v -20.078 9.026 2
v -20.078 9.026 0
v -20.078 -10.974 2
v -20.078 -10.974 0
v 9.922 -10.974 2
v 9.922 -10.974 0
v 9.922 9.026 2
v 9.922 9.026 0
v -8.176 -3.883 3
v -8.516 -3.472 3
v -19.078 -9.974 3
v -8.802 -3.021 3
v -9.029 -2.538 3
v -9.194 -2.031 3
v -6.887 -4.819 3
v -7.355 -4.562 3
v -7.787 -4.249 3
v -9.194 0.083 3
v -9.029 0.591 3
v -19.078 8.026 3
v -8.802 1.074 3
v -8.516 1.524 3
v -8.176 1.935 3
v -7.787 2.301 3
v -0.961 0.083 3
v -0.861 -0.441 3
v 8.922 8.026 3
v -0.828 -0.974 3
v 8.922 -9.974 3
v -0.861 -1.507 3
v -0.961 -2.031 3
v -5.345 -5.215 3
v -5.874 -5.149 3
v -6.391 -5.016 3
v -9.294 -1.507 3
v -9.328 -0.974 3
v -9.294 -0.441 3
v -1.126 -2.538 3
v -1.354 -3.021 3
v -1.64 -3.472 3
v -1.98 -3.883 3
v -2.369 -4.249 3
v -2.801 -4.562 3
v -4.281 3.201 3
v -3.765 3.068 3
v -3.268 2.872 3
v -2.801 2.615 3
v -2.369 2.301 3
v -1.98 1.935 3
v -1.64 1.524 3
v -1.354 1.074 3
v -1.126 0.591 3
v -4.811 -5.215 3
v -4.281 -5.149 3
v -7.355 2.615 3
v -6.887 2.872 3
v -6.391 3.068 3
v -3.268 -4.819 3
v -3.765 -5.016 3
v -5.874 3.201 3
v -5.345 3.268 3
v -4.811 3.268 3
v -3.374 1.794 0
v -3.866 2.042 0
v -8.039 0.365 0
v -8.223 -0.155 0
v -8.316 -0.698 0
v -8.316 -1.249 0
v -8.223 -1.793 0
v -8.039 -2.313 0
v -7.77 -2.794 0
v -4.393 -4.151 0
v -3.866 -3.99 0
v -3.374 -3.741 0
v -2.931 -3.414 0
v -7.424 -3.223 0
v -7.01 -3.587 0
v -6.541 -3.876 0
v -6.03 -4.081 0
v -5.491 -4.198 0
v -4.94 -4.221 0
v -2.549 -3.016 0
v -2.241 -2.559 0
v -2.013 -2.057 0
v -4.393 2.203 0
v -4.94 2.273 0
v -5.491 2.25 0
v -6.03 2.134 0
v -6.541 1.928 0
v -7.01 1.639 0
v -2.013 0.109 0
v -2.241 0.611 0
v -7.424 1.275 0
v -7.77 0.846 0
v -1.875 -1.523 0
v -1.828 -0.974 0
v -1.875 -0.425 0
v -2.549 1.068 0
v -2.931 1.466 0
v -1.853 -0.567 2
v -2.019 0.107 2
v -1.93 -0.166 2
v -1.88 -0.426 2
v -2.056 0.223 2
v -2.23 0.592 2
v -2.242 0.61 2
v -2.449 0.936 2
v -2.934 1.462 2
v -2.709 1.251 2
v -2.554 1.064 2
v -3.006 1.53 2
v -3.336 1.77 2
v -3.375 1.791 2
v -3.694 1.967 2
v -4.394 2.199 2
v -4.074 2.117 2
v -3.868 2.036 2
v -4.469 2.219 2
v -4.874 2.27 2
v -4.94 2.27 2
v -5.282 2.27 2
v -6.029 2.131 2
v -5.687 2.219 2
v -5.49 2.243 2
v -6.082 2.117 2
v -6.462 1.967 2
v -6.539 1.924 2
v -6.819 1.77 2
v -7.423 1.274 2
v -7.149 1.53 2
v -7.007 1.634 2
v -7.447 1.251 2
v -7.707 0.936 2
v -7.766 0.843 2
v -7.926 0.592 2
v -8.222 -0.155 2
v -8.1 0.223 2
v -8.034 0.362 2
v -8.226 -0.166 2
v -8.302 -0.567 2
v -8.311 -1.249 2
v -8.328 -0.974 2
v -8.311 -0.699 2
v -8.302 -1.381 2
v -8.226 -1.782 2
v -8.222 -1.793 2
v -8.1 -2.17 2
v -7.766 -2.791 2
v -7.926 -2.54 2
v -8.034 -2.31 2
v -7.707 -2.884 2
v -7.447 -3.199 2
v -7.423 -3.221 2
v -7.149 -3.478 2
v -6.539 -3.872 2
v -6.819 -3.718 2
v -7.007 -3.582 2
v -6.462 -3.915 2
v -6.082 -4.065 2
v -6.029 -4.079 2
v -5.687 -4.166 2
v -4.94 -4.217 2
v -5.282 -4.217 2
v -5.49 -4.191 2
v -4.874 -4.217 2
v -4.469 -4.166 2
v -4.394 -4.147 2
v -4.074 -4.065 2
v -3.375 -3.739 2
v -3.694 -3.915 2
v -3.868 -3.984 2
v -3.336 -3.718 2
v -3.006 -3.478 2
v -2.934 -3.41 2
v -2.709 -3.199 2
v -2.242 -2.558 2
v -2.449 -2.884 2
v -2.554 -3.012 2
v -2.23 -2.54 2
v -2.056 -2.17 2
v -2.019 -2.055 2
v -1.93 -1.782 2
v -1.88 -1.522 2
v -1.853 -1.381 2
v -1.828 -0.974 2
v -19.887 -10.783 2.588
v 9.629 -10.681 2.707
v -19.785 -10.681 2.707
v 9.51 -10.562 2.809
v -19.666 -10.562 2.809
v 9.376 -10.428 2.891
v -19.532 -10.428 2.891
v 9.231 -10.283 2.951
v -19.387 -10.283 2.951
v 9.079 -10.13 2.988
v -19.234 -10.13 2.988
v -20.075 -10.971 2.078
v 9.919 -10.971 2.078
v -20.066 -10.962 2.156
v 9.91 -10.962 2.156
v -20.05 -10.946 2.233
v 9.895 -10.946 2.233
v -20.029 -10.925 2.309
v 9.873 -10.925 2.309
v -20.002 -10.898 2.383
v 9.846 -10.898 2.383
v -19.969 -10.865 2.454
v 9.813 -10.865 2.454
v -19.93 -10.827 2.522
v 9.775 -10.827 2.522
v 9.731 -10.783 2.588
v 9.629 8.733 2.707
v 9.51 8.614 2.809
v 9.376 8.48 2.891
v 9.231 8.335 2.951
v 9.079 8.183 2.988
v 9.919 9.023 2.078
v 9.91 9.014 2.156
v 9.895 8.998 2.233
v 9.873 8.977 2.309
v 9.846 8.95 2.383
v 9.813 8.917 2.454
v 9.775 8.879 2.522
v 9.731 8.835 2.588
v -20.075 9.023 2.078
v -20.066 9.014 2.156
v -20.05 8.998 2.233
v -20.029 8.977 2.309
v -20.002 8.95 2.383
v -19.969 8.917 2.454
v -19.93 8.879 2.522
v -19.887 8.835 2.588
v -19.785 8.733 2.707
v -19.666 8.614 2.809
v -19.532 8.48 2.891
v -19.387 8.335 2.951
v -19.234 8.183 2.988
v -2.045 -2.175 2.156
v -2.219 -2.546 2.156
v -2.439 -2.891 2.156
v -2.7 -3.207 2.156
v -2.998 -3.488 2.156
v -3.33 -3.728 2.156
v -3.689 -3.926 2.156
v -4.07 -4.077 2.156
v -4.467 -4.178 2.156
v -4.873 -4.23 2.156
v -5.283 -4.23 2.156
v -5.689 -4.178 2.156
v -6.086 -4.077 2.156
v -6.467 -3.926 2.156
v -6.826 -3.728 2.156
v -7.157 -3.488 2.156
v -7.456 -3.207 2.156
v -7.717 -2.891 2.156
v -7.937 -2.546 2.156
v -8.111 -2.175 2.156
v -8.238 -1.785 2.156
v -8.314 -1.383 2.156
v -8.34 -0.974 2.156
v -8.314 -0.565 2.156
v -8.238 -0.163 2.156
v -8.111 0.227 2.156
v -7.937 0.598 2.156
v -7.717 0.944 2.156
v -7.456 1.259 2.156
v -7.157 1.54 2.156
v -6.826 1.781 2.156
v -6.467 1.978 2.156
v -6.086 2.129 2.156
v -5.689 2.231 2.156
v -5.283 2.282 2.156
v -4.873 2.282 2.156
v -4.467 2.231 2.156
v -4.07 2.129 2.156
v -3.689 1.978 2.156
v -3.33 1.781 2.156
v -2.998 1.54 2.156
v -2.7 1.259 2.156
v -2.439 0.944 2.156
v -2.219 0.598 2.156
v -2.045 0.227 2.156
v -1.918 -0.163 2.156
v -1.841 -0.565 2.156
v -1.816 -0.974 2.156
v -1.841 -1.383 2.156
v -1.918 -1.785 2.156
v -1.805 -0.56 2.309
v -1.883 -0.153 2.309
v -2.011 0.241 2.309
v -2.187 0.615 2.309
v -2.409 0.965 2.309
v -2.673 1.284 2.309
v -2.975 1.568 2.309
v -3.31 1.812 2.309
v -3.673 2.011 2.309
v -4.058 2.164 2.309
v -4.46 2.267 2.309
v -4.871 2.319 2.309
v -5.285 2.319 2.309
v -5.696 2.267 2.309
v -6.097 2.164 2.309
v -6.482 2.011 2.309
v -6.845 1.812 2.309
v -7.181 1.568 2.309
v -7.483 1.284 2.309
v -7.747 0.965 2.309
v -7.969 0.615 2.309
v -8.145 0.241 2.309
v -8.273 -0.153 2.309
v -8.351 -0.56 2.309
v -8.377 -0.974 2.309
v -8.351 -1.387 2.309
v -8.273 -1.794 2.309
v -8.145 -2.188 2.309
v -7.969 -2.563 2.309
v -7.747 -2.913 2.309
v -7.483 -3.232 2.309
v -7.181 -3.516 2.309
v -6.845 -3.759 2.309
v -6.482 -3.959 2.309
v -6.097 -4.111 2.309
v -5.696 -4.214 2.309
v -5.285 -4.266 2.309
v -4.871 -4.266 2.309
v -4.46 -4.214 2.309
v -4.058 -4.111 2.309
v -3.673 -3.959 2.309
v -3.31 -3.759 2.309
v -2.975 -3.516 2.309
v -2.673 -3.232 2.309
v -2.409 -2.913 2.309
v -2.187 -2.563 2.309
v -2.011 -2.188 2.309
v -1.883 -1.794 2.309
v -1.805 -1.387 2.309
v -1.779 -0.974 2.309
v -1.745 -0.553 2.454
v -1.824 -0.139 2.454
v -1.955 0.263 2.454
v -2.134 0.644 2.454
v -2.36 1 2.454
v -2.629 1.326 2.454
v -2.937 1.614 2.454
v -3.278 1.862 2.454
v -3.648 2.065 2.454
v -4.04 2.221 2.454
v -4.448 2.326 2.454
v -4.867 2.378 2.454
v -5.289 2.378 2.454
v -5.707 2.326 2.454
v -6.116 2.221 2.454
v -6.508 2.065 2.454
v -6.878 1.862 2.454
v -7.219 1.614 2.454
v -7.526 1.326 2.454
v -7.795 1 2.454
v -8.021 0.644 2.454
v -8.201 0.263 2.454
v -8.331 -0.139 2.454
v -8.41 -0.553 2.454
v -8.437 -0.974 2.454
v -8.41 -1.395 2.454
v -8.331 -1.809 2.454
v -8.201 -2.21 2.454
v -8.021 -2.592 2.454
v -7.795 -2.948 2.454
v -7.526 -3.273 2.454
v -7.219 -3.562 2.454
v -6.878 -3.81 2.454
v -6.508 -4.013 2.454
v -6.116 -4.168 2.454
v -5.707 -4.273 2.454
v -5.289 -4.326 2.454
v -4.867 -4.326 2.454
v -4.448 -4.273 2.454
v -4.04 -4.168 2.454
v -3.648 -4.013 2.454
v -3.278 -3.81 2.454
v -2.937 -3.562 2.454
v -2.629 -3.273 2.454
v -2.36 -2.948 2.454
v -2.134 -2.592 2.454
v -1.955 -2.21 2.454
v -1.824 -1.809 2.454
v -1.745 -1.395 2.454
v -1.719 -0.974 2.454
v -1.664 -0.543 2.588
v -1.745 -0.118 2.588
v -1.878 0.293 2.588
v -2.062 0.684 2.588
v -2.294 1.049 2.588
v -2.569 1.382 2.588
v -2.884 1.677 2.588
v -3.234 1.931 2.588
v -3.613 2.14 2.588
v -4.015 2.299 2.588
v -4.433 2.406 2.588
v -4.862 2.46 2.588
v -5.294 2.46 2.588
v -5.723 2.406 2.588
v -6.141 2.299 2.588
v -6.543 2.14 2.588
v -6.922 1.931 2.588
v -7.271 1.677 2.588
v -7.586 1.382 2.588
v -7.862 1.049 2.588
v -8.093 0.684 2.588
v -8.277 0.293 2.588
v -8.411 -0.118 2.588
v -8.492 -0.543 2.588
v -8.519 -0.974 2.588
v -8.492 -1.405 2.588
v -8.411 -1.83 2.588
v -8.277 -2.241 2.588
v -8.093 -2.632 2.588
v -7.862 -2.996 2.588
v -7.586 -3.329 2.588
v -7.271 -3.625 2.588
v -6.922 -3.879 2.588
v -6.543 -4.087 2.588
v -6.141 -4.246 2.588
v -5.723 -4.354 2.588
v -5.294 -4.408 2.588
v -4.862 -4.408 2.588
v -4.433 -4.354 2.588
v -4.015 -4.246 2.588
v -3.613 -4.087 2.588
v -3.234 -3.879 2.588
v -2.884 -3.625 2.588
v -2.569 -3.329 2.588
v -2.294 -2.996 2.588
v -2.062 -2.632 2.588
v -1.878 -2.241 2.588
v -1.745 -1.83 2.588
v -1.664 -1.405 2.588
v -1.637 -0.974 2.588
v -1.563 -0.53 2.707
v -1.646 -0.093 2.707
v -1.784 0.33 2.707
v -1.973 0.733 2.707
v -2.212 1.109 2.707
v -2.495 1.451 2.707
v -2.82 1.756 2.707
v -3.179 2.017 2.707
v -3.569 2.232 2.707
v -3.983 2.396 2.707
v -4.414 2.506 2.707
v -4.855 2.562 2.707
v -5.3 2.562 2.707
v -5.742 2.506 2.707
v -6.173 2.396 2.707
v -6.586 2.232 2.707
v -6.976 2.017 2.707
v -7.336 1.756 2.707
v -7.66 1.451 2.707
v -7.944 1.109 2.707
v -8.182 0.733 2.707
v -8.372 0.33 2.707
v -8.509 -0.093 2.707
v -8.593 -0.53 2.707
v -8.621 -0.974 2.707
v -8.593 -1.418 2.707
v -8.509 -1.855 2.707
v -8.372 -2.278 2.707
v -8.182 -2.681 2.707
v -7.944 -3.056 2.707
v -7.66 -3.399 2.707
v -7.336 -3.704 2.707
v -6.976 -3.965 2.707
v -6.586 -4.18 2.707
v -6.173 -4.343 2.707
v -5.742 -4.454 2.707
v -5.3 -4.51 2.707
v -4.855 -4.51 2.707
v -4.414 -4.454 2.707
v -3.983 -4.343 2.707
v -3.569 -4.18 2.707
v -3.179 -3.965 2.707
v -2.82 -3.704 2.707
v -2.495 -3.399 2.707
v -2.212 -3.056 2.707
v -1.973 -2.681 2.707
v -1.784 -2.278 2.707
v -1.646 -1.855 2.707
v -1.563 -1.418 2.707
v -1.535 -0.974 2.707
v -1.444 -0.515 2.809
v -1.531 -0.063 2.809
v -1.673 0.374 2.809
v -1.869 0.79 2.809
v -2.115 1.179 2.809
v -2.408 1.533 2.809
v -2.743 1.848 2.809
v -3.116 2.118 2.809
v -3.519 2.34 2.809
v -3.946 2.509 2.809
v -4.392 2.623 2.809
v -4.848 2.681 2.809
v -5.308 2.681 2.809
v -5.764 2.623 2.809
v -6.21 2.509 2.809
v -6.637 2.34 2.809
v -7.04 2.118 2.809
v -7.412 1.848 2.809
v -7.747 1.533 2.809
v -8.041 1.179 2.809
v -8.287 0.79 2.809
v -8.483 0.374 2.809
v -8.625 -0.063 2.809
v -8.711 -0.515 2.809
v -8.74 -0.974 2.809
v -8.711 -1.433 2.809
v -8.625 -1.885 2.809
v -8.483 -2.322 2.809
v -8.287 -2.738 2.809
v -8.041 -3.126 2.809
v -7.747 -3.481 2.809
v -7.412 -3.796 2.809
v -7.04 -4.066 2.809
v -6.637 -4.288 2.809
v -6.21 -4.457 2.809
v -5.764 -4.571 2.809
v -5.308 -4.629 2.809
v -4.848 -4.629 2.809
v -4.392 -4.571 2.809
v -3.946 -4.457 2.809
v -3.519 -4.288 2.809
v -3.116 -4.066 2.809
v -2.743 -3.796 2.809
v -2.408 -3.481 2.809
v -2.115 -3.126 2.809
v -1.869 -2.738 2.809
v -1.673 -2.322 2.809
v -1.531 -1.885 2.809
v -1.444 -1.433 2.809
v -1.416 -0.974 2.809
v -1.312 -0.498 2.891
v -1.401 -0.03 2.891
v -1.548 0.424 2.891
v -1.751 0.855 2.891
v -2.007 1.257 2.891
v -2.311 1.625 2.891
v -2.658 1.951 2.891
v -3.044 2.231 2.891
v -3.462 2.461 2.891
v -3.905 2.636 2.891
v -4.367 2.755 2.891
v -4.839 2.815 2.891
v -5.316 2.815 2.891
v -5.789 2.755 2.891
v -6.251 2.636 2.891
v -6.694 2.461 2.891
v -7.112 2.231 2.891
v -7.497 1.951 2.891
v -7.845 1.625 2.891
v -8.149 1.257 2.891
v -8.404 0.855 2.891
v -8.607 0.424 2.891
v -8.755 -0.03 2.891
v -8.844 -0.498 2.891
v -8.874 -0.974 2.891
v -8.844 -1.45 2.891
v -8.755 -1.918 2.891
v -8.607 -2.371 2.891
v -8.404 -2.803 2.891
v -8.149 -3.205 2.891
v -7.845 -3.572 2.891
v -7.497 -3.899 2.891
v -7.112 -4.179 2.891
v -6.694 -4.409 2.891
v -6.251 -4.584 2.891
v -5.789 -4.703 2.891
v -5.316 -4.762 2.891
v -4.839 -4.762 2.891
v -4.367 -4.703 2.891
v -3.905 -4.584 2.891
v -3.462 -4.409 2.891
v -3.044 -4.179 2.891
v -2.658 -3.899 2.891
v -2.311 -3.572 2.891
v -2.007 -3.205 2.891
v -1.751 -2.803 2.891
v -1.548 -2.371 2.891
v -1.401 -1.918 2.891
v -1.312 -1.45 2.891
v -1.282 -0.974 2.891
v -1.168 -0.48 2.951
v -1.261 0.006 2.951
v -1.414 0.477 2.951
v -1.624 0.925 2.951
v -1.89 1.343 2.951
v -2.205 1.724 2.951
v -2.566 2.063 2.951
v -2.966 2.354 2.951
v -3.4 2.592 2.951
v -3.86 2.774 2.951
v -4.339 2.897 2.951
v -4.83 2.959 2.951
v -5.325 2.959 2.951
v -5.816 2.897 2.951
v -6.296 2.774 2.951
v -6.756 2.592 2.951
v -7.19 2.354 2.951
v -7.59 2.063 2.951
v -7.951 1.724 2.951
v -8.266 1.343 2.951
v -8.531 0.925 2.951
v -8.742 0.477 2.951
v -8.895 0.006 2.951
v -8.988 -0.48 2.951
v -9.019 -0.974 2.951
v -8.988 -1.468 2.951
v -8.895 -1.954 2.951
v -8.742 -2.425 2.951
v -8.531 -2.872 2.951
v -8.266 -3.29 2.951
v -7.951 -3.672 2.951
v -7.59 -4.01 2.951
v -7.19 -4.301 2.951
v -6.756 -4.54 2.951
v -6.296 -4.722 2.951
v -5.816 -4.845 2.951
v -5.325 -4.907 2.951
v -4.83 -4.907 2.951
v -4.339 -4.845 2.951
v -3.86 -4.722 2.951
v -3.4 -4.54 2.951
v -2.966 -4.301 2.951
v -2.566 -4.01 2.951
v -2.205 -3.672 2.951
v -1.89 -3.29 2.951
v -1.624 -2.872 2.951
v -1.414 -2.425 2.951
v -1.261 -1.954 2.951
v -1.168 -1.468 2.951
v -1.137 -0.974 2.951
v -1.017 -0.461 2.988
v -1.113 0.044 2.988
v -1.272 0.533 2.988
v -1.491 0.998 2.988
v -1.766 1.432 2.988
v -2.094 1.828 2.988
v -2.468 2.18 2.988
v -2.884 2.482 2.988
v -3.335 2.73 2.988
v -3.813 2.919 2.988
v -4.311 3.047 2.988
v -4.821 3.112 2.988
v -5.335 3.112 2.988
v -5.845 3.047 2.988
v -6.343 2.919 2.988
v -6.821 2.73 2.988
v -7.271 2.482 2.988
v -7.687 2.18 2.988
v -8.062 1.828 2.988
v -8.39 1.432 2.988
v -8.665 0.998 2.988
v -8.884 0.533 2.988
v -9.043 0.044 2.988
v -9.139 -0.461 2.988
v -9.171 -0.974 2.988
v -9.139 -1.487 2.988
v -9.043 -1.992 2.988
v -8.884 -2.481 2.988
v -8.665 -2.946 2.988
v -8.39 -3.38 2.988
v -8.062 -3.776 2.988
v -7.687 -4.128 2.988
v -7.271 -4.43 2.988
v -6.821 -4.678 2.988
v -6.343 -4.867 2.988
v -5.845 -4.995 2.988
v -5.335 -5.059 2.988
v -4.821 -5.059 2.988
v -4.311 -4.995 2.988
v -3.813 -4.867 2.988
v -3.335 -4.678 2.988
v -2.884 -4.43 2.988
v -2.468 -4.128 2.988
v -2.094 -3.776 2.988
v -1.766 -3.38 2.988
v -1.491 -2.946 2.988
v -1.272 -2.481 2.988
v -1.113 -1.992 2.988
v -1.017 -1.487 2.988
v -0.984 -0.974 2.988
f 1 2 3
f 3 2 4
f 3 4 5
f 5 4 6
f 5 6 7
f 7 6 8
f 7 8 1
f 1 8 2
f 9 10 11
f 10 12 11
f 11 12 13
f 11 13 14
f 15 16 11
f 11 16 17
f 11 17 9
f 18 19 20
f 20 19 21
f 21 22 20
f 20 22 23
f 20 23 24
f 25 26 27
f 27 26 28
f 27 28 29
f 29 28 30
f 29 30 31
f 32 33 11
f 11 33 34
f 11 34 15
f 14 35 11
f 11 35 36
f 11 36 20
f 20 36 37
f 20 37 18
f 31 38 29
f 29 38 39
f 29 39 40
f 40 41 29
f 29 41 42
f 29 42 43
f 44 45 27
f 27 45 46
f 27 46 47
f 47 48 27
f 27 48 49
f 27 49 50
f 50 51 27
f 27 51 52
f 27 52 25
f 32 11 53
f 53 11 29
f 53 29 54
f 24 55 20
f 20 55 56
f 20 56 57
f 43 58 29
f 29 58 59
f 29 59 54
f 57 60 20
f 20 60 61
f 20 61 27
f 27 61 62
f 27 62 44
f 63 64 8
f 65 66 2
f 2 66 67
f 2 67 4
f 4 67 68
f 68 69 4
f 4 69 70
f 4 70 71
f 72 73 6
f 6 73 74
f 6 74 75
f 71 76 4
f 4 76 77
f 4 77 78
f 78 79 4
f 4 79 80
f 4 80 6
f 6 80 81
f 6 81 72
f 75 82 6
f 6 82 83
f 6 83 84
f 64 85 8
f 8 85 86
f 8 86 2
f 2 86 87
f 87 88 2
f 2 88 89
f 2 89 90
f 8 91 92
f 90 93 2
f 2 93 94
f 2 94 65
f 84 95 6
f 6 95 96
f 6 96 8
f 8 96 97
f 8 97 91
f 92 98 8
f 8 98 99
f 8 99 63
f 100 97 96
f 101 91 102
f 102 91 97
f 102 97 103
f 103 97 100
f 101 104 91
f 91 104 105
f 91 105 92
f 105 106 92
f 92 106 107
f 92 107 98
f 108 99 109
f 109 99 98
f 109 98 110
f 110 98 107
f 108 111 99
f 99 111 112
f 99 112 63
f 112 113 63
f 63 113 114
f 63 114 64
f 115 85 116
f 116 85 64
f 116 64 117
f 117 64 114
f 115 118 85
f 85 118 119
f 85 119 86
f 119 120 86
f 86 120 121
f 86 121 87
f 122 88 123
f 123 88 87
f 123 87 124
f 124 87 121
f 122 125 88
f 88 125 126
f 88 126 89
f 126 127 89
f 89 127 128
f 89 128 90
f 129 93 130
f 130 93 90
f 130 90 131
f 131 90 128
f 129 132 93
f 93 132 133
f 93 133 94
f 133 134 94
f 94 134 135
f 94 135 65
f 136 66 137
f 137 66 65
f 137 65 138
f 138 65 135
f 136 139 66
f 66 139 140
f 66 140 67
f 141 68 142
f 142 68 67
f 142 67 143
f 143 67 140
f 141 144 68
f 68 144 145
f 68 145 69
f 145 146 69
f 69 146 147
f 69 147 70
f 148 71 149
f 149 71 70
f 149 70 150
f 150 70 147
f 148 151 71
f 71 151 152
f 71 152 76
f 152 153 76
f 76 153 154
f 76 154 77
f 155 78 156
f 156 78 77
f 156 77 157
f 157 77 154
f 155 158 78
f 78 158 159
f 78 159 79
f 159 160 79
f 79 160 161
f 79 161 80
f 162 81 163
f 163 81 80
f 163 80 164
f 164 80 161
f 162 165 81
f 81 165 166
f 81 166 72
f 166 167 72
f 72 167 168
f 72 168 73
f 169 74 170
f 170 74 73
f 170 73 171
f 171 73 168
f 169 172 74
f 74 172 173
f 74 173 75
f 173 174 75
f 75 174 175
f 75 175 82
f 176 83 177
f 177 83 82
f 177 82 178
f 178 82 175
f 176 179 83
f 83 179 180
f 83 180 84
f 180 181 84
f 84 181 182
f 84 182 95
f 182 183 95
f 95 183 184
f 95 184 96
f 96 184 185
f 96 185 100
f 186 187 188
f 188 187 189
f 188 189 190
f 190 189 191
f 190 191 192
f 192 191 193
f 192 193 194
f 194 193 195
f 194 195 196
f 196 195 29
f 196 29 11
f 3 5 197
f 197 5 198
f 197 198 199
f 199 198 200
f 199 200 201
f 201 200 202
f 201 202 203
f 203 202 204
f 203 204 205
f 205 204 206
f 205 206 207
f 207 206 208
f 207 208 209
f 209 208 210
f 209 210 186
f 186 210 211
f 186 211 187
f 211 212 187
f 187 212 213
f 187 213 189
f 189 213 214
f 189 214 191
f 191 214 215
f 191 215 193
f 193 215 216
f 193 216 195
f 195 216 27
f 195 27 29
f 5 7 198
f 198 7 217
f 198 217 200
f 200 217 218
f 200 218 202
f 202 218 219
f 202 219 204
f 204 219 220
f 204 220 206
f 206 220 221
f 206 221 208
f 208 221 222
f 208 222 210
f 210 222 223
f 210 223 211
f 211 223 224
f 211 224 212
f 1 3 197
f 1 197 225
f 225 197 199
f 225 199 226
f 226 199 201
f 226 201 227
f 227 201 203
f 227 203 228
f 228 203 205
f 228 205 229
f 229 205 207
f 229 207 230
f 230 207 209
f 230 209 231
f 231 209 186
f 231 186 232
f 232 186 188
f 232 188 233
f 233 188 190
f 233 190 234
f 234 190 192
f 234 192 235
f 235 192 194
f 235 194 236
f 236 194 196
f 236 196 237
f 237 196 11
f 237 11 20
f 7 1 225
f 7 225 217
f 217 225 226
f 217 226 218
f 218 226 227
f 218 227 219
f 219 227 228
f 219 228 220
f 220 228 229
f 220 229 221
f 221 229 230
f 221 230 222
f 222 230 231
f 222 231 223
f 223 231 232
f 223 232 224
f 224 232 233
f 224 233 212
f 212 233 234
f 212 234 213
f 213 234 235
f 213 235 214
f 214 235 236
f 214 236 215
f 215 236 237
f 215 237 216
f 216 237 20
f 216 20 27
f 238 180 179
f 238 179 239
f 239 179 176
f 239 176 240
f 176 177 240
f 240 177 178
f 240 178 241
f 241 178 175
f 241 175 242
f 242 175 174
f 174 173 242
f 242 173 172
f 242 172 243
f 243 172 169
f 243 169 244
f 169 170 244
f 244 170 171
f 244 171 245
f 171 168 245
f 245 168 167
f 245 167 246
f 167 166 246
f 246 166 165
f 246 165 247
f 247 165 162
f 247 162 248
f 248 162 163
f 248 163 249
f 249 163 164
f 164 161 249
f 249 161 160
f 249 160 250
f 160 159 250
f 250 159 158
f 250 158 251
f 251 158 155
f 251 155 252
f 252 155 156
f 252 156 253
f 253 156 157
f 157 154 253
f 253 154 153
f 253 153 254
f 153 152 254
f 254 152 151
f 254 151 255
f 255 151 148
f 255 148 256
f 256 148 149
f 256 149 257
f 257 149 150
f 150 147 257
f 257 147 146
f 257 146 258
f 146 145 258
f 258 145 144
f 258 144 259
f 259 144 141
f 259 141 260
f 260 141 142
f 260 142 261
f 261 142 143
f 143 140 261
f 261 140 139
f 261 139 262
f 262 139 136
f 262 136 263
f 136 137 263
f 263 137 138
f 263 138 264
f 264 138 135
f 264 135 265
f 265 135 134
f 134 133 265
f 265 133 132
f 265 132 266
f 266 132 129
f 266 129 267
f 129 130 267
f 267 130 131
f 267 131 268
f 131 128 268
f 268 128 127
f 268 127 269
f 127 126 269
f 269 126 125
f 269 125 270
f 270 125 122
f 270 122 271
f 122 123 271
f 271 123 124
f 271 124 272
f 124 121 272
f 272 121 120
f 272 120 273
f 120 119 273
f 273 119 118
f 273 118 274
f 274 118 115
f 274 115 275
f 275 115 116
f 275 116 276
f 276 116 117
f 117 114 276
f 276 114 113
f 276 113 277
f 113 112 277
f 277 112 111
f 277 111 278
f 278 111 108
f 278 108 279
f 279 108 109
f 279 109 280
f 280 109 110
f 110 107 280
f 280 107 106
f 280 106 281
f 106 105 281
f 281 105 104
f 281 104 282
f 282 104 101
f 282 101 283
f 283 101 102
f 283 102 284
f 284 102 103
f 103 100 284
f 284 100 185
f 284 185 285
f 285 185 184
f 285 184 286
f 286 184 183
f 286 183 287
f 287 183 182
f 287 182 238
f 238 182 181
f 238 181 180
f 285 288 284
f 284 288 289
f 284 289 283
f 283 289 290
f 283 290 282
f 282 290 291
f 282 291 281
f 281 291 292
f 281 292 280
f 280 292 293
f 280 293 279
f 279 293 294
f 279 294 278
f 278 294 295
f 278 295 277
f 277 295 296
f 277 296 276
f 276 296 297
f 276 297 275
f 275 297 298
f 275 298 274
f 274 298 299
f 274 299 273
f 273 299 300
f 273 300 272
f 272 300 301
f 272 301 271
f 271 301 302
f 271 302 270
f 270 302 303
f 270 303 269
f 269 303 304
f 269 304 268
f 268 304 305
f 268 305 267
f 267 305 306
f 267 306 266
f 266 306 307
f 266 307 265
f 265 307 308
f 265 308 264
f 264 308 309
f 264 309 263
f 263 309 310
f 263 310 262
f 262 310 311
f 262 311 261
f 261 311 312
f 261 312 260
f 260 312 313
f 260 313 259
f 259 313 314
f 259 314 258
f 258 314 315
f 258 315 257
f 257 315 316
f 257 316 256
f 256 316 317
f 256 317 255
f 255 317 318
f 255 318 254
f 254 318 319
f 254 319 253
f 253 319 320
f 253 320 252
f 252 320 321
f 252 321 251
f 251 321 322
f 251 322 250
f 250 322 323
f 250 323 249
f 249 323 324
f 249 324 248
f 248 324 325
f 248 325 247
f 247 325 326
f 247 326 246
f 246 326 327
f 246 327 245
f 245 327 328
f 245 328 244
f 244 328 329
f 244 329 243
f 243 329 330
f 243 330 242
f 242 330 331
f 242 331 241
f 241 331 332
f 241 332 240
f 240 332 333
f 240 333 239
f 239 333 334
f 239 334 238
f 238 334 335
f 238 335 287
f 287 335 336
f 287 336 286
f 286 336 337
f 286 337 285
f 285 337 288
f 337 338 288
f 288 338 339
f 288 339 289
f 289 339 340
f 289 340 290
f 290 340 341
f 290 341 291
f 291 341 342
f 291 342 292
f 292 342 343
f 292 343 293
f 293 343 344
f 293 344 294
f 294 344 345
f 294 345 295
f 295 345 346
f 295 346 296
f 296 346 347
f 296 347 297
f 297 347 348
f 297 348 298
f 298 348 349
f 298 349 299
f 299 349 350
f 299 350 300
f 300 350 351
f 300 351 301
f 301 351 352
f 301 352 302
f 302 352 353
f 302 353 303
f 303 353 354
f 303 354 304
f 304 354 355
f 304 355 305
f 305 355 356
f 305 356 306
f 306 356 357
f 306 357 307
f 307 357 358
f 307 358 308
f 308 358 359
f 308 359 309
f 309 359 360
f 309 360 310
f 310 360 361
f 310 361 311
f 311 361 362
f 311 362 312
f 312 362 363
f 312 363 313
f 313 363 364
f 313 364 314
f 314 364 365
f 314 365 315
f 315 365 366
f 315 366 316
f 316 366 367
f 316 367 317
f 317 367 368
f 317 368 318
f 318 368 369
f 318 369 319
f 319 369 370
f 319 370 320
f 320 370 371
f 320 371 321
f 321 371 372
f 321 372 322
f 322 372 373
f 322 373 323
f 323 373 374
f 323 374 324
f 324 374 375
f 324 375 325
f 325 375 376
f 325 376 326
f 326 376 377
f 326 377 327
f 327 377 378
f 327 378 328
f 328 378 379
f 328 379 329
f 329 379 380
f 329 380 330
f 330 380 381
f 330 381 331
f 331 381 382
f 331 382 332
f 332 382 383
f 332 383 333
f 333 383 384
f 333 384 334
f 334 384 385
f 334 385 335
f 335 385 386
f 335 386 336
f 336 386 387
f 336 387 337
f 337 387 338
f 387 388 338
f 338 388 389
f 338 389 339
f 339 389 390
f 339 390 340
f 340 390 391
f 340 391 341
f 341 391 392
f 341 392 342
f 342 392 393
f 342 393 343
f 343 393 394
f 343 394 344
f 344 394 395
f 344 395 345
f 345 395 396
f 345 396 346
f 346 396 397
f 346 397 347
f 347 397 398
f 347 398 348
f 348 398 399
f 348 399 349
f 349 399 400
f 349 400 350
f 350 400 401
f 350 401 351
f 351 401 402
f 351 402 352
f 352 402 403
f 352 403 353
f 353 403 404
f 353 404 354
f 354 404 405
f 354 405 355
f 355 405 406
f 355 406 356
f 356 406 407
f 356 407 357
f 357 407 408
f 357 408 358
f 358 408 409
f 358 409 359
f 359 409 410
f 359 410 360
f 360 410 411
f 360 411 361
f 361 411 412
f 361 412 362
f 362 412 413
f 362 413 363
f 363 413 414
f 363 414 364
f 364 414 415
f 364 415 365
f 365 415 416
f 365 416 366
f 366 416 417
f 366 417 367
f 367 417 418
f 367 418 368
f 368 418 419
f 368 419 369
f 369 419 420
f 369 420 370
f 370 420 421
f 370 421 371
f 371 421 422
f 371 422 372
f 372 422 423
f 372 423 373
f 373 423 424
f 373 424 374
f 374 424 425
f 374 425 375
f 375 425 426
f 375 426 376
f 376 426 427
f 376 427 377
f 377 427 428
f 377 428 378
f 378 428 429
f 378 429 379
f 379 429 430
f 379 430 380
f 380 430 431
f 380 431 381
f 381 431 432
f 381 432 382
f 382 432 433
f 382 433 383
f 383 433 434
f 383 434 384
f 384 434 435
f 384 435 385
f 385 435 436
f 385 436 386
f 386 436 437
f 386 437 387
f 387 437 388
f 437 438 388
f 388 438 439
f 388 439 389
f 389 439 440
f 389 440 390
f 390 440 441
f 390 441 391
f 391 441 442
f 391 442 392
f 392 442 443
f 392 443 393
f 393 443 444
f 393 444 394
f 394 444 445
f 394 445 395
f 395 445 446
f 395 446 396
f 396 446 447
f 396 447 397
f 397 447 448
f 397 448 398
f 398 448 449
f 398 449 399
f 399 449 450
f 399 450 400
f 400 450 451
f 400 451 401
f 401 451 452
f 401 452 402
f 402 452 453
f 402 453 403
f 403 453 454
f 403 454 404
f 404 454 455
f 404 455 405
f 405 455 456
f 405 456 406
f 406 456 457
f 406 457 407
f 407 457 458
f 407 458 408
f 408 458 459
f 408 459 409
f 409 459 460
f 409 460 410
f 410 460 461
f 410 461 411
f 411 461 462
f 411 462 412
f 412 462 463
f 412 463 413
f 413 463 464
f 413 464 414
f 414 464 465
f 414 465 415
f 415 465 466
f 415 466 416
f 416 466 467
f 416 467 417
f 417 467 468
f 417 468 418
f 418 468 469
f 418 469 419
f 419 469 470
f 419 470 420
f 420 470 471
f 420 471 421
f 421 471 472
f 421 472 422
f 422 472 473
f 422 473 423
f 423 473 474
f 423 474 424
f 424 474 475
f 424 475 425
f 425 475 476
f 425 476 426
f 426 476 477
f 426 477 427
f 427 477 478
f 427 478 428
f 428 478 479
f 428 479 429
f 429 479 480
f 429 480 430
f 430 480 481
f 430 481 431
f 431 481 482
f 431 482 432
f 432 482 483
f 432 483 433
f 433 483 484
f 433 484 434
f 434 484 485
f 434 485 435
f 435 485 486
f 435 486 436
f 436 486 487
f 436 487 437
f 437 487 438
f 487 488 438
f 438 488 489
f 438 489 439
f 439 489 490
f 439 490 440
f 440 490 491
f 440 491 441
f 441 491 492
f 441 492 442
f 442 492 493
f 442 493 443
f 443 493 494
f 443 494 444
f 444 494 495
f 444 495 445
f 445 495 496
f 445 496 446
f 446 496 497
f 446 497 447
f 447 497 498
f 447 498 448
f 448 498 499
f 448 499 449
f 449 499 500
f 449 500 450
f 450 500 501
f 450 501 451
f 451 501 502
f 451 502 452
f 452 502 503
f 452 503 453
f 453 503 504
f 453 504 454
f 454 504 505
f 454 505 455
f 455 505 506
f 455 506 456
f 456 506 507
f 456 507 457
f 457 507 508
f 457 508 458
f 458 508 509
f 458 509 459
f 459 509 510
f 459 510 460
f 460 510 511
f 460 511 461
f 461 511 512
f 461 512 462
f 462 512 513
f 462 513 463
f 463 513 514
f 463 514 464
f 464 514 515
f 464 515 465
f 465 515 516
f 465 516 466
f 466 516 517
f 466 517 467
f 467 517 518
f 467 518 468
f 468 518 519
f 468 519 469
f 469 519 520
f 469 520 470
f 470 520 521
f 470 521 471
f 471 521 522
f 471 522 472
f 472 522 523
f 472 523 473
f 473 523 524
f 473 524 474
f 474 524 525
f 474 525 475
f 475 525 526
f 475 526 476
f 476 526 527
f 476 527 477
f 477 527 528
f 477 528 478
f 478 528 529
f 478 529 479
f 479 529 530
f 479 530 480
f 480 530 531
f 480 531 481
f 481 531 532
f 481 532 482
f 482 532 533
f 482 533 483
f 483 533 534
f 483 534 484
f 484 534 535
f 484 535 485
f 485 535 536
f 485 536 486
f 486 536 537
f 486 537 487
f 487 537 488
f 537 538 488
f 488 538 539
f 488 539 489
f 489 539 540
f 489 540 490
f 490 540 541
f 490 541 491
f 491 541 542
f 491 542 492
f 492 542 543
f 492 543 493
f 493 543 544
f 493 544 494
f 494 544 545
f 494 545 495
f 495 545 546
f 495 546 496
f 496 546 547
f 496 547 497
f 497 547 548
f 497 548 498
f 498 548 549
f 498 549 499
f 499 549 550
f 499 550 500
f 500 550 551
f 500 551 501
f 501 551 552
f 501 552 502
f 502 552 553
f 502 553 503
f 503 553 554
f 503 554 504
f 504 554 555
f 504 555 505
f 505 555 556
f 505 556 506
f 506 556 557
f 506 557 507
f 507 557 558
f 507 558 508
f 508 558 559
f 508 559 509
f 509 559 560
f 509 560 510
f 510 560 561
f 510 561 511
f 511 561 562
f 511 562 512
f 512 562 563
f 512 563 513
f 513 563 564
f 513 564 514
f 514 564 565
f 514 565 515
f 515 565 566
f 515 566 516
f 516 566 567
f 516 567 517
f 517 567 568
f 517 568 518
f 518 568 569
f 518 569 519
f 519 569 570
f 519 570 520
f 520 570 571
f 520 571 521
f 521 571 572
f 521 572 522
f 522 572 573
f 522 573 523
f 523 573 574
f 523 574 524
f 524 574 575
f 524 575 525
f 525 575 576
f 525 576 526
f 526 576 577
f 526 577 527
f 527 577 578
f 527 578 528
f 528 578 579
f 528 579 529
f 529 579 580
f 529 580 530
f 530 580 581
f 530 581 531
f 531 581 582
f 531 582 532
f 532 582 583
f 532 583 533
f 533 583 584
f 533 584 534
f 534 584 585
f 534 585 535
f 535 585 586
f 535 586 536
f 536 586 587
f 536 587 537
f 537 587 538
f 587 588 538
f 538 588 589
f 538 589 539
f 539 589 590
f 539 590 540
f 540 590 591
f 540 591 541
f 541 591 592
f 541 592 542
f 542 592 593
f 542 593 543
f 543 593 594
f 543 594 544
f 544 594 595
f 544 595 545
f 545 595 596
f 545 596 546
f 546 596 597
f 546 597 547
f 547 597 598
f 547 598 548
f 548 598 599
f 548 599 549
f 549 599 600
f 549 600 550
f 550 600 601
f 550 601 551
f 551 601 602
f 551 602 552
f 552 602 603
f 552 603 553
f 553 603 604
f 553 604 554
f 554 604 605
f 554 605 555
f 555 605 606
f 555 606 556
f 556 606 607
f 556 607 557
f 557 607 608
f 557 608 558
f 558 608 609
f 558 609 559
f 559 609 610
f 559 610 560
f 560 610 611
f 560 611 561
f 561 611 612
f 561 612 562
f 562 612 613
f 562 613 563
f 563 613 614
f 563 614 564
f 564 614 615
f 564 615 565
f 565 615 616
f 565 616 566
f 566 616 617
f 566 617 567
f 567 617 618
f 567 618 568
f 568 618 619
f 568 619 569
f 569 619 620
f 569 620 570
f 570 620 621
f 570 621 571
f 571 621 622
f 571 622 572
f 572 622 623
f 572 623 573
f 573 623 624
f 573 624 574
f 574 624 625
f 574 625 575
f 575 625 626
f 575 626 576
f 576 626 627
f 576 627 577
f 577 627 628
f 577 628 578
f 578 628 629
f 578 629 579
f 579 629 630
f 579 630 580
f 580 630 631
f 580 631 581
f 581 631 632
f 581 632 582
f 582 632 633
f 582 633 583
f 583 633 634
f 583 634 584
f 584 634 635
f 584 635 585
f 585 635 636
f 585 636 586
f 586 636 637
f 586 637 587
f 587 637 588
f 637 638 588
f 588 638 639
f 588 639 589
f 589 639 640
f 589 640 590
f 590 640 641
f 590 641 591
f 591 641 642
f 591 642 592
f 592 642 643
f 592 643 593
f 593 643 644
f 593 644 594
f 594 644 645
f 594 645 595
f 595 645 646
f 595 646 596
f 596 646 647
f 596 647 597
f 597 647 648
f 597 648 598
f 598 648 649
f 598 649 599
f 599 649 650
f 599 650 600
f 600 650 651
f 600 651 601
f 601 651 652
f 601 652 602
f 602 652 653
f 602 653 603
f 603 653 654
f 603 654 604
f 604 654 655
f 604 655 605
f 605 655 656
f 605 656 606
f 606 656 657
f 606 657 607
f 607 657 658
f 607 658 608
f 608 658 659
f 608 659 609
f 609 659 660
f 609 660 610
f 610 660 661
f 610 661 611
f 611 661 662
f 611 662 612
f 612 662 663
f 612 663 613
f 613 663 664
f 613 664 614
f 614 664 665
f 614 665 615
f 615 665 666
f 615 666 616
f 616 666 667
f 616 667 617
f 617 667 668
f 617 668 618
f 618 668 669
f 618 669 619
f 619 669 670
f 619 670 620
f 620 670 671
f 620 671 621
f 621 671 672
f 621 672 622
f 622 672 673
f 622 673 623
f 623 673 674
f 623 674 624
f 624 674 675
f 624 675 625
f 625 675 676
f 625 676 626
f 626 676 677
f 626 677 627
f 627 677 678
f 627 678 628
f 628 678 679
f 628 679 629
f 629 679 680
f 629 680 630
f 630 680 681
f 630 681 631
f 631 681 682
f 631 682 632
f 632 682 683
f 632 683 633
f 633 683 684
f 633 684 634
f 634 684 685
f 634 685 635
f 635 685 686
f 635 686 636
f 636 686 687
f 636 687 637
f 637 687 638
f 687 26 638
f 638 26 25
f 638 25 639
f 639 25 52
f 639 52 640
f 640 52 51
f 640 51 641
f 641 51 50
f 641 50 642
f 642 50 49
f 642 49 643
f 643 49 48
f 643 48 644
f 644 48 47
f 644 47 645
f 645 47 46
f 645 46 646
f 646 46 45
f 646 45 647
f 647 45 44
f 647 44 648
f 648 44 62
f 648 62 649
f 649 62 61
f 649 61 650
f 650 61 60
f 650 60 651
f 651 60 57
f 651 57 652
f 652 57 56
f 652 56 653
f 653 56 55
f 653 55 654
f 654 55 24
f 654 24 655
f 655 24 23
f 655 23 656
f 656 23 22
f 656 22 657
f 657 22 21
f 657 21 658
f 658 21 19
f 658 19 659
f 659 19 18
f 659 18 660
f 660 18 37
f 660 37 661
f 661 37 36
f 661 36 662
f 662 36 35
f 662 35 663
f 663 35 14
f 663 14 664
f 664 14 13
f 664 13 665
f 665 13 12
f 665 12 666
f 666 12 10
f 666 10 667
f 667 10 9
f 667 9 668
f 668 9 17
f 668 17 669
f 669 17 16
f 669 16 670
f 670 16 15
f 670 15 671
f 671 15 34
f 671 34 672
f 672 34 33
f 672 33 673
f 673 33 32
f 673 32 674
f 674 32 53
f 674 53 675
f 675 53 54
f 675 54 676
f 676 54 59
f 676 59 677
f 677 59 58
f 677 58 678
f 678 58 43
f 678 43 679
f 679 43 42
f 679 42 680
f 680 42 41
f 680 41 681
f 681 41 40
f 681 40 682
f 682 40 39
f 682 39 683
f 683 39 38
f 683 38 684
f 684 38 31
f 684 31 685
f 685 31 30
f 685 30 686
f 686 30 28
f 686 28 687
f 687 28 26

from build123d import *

# Parameters (mm, degrees)
ESQUISSE1_W             = 30
ESQUISSE1_H             = 20
BOSS_EXTRU_1_DEPTH      = 3
ESQUISSE2_R             = 3.25
ENL_V_MAT_EXTRU_1_DEPTH = 3
CONG_1_R                = 1


with BuildPart() as part:
    # Esquisse1 → Boss.-Extru.1 (new body)
    with BuildSketch(Plane.XY):
        with Locations((-5.07782823, -0.973871734)):
            Rectangle(ESQUISSE1_W, ESQUISSE1_H)
    extrude(amount=BOSS_EXTRU_1_DEPTH)

    # Esquisse2 → Enlèv. mat.-Extru.1 (cut)
    with BuildSketch(Plane.XY.offset(3)):
        with Locations((-5.07782823, -0.973871734)):
            Circle(ESQUISSE2_R)
    extrude(amount=-ENL_V_MAT_EXTRU_1_DEPTH, mode=Mode.SUBTRACT)

    # Congé1
    cong_1_edges = [part.edges().sort_by_distance(p)[0] for p in [
        (9.92217177, -0.973871734, 3),
        (-5.07782823, 9.026128266, 3),
        (-8.32782823, -0.973871734, 3),
        (-20.07782823, -0.973871734, 3),
        (-5.07782823, -10.973871734, 3),
    ]]
    fillet(cong_1_edges, radius=CONG_1_R)


solid = part.part
